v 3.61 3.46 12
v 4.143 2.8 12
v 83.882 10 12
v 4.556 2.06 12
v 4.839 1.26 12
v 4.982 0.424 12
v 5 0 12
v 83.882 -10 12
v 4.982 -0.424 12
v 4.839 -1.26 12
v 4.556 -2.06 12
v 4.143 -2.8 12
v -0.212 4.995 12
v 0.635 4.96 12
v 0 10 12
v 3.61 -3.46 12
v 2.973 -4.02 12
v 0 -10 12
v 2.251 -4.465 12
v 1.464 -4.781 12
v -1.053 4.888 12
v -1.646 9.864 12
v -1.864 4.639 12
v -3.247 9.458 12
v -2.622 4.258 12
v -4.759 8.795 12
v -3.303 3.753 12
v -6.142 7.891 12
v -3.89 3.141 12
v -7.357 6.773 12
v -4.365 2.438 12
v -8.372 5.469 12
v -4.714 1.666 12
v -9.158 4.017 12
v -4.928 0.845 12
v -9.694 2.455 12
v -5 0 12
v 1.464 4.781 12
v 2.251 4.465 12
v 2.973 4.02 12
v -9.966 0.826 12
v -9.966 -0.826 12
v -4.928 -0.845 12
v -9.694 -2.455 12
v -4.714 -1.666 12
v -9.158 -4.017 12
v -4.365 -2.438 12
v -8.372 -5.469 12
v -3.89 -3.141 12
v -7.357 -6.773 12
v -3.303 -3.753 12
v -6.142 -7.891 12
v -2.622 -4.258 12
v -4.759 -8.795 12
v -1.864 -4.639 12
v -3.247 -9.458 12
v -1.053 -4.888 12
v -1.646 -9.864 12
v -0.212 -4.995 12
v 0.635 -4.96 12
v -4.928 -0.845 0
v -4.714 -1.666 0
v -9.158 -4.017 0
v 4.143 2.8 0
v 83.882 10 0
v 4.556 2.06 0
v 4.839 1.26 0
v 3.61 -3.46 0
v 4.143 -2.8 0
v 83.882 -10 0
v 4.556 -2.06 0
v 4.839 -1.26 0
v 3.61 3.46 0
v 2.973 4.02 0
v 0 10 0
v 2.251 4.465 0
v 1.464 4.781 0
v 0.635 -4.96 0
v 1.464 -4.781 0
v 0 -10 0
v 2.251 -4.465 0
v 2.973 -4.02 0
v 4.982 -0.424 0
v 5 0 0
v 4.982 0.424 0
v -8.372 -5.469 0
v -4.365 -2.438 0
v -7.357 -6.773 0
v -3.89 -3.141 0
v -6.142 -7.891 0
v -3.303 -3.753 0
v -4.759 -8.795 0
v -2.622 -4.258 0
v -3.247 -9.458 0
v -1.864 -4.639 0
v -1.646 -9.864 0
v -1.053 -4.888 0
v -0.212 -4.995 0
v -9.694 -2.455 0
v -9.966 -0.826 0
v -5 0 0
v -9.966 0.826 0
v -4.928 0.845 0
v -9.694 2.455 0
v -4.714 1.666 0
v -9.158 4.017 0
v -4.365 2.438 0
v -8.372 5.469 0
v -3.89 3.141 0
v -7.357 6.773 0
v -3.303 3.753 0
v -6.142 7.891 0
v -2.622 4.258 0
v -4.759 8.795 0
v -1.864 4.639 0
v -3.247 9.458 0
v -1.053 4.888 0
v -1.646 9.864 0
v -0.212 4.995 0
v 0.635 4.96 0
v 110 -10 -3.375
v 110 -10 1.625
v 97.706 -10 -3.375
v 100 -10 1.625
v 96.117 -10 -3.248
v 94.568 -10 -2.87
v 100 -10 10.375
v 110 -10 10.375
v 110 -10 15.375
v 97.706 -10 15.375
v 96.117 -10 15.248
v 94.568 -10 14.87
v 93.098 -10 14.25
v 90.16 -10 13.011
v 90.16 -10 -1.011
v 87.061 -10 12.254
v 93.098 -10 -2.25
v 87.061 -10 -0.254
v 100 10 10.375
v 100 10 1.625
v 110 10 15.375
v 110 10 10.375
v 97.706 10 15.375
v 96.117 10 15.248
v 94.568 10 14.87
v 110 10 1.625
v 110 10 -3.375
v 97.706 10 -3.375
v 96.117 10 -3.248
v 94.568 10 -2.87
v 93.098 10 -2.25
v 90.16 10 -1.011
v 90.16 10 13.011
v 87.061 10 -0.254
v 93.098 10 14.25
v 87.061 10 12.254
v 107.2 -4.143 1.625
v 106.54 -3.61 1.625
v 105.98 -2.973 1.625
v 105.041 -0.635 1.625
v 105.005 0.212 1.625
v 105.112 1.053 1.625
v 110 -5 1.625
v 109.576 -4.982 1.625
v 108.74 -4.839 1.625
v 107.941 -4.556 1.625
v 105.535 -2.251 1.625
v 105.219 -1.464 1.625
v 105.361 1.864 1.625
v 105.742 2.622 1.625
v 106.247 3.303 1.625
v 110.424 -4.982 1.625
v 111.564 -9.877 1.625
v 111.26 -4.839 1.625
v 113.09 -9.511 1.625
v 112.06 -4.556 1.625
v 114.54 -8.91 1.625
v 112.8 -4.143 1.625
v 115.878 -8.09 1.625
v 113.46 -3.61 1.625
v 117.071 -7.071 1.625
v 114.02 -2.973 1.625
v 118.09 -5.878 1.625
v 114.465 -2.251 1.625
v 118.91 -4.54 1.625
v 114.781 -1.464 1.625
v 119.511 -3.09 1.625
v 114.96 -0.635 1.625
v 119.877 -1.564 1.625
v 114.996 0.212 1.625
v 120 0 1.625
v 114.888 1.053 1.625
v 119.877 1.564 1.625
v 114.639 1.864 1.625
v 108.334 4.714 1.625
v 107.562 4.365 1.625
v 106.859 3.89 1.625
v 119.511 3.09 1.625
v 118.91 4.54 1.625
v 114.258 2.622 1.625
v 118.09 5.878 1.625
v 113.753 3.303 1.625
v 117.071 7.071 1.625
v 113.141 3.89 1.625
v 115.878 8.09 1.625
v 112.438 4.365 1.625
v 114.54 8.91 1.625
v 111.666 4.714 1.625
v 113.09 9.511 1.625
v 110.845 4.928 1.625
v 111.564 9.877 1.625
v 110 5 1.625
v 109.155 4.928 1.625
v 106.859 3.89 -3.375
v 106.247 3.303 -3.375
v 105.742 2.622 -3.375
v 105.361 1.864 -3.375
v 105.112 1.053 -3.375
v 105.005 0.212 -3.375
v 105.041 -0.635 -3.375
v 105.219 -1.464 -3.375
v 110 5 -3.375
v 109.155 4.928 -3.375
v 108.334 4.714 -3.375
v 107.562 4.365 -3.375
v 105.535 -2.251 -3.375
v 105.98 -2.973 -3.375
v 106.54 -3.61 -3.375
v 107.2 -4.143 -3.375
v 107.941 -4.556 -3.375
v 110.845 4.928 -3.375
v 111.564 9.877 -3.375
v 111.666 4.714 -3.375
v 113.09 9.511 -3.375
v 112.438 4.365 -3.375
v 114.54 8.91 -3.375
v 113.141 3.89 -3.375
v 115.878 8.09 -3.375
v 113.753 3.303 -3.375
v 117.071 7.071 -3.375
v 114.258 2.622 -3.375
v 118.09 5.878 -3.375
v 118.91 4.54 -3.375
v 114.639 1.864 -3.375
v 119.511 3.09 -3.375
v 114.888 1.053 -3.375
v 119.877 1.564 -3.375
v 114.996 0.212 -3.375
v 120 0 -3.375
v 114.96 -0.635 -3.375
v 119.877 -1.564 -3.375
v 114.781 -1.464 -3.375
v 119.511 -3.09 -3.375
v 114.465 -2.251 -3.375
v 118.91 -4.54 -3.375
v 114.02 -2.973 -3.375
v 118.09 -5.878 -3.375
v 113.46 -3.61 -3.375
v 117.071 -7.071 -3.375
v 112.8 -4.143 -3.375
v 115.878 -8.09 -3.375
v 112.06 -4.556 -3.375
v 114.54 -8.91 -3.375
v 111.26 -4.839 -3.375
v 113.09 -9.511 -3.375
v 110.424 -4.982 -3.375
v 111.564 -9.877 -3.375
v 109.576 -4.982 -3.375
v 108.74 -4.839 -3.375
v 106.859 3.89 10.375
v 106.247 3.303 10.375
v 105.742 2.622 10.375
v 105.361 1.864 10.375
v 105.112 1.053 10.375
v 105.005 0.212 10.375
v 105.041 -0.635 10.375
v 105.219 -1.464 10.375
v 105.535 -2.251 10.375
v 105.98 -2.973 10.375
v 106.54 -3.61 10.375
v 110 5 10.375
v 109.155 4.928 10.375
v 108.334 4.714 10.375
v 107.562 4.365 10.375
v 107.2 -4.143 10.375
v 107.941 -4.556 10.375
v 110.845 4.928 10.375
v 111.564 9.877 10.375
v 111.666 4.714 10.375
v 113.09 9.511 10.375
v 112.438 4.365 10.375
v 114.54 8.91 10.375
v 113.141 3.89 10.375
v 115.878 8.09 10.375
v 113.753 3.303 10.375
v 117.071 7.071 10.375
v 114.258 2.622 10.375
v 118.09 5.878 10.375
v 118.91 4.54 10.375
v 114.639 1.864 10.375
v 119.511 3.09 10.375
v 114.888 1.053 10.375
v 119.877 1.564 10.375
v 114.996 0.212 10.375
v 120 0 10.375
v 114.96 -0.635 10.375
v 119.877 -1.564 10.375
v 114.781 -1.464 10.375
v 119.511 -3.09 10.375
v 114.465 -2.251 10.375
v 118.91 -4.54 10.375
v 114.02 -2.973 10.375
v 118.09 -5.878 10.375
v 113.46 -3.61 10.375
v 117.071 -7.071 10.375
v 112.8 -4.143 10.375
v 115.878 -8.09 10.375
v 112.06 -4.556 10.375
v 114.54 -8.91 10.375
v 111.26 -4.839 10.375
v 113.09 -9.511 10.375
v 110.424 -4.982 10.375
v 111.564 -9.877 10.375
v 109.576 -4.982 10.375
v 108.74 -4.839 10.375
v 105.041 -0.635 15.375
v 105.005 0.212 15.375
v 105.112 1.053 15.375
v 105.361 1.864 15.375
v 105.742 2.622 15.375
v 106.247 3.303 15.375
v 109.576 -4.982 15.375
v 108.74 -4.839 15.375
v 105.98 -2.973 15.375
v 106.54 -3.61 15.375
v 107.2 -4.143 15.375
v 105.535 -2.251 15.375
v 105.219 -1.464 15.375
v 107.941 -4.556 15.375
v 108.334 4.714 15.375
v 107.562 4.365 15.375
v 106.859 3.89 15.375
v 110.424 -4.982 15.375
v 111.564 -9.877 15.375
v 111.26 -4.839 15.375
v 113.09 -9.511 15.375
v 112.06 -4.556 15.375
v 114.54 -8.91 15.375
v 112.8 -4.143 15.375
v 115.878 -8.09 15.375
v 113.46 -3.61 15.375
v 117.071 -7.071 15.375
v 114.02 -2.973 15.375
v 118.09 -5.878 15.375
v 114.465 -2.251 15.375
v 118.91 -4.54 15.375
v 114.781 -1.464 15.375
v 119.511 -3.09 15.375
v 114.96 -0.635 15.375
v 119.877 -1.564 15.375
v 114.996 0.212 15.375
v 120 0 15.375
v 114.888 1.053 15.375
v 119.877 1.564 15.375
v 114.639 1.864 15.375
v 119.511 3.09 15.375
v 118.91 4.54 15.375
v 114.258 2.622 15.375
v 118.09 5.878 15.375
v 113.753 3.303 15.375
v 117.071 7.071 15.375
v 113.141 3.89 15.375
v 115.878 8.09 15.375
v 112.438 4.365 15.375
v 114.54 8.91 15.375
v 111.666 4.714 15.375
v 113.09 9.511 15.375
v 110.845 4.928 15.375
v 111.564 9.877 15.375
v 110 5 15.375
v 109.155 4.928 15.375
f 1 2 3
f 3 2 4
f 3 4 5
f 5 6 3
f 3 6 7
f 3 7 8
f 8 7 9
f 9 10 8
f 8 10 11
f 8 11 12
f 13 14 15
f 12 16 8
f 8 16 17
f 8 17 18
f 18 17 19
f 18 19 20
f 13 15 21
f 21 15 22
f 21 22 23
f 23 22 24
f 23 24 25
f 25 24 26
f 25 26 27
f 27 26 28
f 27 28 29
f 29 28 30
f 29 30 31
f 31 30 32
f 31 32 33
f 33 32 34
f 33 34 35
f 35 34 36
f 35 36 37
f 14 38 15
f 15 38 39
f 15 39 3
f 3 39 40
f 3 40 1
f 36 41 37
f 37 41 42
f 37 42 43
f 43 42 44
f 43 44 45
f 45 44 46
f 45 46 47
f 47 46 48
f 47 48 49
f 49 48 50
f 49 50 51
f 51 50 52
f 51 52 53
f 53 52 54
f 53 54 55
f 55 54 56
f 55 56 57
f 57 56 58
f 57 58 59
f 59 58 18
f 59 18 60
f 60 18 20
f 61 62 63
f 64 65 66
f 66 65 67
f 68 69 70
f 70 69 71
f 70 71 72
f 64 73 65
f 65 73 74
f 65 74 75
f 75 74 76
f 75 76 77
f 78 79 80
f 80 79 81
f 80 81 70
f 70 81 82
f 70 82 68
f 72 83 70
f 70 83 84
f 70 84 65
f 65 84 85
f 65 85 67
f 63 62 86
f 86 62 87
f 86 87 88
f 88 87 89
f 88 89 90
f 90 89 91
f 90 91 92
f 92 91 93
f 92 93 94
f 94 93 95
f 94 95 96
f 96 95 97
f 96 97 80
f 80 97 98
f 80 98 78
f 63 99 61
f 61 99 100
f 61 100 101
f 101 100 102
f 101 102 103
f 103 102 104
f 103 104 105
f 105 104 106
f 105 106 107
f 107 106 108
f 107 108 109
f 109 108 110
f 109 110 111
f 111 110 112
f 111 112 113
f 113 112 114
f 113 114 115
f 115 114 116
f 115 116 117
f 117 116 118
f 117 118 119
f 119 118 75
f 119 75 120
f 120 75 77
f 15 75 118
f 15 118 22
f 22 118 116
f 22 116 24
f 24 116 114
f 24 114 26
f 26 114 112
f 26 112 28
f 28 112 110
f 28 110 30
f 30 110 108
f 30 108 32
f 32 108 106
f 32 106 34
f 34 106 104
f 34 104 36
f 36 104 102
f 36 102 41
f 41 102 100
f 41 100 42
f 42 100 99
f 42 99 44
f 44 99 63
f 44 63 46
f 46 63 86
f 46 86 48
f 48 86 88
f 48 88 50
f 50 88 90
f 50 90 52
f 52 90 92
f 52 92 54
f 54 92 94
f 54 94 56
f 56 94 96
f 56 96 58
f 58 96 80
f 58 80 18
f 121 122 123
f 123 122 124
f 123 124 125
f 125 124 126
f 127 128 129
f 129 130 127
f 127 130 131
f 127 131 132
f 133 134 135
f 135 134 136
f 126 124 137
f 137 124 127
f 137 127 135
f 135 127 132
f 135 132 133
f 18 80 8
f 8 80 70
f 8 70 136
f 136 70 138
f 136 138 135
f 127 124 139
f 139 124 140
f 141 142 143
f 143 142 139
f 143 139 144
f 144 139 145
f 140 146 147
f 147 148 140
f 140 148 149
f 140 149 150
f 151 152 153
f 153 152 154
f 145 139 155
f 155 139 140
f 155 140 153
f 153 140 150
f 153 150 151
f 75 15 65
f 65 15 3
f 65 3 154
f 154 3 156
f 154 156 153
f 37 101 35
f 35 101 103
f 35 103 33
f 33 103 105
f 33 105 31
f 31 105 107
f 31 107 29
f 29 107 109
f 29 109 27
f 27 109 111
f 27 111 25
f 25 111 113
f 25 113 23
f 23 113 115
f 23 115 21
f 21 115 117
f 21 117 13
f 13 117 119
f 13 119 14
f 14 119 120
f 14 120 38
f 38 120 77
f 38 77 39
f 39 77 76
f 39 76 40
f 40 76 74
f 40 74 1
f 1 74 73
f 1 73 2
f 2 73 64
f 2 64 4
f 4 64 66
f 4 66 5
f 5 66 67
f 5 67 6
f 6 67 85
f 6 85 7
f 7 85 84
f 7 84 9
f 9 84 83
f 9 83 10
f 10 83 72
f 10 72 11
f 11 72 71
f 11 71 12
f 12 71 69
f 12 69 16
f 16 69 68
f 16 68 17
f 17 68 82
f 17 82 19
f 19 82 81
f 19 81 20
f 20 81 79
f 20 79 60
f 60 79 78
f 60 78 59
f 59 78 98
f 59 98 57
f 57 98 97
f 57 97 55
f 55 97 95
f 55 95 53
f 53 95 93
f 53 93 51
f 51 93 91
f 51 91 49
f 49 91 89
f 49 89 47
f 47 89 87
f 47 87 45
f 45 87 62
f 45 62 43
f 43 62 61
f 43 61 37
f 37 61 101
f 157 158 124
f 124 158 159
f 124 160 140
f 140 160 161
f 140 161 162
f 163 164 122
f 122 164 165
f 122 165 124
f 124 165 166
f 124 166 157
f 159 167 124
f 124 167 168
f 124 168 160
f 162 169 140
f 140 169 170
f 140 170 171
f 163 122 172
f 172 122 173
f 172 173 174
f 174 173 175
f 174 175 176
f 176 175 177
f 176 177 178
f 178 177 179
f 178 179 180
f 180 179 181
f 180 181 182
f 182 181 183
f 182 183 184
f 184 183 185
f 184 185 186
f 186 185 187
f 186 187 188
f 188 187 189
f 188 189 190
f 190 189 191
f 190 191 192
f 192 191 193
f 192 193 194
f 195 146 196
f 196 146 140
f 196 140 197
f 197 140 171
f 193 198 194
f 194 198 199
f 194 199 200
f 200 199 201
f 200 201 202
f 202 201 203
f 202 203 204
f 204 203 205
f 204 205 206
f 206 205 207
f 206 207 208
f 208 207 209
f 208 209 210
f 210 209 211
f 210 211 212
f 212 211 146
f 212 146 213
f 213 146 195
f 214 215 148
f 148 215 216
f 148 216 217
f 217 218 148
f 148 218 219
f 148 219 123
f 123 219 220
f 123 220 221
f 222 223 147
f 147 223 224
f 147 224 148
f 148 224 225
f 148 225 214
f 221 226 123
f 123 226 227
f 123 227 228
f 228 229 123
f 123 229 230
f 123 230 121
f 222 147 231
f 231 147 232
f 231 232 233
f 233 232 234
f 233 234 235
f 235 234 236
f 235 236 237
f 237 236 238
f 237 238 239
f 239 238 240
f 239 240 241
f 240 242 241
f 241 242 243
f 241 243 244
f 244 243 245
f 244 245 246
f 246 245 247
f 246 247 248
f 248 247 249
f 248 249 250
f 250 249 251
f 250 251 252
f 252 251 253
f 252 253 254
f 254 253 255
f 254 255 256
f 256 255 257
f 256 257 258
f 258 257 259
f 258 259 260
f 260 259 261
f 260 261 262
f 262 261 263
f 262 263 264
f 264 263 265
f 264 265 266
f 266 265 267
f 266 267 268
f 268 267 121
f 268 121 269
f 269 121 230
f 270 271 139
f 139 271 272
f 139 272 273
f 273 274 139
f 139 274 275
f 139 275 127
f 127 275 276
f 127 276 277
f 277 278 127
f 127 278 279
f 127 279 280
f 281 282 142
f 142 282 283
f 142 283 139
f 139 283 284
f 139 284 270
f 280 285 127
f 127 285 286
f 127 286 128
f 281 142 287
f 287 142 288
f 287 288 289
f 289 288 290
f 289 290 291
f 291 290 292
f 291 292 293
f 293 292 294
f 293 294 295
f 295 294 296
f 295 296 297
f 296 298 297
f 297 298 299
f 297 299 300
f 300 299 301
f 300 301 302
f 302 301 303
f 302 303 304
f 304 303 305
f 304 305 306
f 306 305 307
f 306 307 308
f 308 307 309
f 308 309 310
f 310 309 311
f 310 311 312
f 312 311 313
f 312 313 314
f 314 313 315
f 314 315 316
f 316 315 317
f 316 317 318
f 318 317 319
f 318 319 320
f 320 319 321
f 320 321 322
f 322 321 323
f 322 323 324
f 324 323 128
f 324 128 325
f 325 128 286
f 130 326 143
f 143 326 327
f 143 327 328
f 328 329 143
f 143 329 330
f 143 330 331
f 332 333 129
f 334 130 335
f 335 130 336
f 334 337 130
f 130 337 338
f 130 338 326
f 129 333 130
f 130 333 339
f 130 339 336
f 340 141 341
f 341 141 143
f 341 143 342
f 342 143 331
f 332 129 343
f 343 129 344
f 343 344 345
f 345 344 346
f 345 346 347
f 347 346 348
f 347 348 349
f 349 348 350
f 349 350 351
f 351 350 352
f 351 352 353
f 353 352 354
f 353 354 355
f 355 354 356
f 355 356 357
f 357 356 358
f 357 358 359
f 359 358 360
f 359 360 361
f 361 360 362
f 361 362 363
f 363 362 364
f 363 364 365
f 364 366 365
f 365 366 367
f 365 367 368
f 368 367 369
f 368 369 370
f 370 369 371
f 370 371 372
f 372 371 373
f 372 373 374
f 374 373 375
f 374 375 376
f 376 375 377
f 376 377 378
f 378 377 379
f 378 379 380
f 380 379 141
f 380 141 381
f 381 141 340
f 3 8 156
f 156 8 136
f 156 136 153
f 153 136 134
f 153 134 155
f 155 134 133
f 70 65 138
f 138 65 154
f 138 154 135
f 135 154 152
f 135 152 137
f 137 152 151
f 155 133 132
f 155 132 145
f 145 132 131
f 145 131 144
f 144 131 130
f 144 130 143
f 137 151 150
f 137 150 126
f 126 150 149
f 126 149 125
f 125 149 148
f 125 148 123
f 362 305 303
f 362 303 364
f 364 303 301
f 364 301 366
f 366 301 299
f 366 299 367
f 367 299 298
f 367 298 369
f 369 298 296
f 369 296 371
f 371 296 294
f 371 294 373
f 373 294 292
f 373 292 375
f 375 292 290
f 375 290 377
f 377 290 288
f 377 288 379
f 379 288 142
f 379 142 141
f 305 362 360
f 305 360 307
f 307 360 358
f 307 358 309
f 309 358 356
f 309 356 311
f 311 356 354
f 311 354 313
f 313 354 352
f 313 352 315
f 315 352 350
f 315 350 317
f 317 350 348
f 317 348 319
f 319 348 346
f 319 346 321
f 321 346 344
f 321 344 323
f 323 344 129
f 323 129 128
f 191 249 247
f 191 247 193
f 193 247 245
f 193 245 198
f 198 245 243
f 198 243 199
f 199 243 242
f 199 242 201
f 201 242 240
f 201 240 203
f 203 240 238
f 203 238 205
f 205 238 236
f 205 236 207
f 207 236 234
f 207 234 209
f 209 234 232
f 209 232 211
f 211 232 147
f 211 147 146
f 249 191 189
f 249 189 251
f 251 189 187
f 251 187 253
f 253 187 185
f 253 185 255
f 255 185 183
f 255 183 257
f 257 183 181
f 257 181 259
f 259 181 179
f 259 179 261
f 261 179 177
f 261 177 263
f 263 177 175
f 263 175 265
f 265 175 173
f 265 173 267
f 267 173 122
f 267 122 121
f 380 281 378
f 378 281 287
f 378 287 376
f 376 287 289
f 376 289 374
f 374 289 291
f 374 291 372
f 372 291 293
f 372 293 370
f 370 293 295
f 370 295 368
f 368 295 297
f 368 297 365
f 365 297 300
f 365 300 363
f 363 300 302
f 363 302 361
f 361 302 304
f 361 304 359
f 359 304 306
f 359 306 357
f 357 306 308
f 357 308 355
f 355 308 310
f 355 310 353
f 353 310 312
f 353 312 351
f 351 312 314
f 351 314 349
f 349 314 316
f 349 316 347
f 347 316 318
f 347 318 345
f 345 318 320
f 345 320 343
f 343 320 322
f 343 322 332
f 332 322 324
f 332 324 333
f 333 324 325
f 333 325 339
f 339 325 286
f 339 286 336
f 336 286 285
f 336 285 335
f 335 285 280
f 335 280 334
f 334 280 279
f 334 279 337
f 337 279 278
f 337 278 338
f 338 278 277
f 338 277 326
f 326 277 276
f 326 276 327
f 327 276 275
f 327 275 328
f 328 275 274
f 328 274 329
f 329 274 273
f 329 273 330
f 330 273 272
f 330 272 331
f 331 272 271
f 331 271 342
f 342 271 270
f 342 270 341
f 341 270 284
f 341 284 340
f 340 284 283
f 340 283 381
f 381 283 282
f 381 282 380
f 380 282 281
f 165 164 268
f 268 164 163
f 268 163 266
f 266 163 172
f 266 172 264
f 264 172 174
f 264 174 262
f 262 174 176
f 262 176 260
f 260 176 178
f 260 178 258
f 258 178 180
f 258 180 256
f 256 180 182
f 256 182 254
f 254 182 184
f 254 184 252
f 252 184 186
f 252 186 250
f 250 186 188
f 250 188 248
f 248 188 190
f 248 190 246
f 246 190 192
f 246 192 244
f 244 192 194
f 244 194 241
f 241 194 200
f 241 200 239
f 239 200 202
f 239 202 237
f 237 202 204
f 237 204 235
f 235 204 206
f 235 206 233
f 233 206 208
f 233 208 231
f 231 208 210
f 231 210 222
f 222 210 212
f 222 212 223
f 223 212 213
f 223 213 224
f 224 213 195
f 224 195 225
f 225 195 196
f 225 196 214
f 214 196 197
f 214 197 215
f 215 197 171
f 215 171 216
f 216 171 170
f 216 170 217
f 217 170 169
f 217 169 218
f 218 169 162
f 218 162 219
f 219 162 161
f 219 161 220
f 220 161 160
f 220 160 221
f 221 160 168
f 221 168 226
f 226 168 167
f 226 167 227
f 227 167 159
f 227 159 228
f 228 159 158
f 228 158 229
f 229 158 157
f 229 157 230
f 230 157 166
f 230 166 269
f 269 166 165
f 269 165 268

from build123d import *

# Parameters (mm, degrees)
SCHIZZO1_R                        = 5
ESTRUSIONE_ESTRUSIONE1_DEPTH      = 12
ESTRUSIONE_ESTRUSIONE2_DEPTH      = 20
ESTRUSIONE_ESTRUSIONE2_DEPTH_BACK = 5
SCHIZZO3_W                        = 5
SCHIZZO3_H                        = 20
RACCORDO1_R                       = 20
RACCORDO2_R                       = 10
RACCORDO3_R                       = 10
TAGLIO_ESTRUSIONE1_DEPTH          = 122.866986916
TAGLIO_ESTRUSIONE1_DEPTH_BACK     = 122.866986916
SCHIZZO4_R                        = 5


# Some blends are built 0.0001 mm under size
with BuildPart() as part:
    # Schizzo1 → Estrusione-Estrusione1 (new body)
    with BuildSketch(Plane.XY):
        with BuildLine():
            Line((0, 10), (100, 10))
            Line((100, 10), (100, -10))
            Line((100, -10), (0, -10))
            ThreePointArc((0, -10), (-10, 0), (0, 10))
        make_face()
        Circle(SCHIZZO1_R, mode=Mode.SUBTRACT)
    extrude(amount=ESTRUSIONE_ESTRUSIONE1_DEPTH)

    # Schizzo3 → Estrusione-Estrusione2 (add, two sides: drawn at the far end of the back side and taken through both)
    with BuildSketch(Plane(origin=(100, 0, 0), x_dir=(0, 0, -1), z_dir=(1, 0, 0)).offset(-ESTRUSIONE_ESTRUSIONE2_DEPTH_BACK)):
        with Locations((-12.875, 0)):
            Rectangle(SCHIZZO3_W, SCHIZZO3_H)
        with Locations((0.875, 0)):
            Rectangle(SCHIZZO3_W, SCHIZZO3_H)
    extrude(amount=ESTRUSIONE_ESTRUSIONE2_DEPTH + ESTRUSIONE_ESTRUSIONE2_DEPTH_BACK)

    # Raccordo1
    # the kernel refuses this fillet: 20 mm, written as the material it adds along each edge
    with BuildSketch(Plane(origin=(95, 10, 12), x_dir=(-1, 0, 0), z_dir=(0, -1, 0)), Plane(origin=(95, -10, 0), x_dir=(-1, 0, 0), z_dir=(0, 1, 0))) as raccordo1_piece_1:
        with BuildLine():
            CenterArc((11.11797531, -20), RACCORDO1_R, 90, 33.772641851)
            Line((0, -3.375), (-0.222359506, -3.0425))
            ThreePointArc((-0.222359506, -3.0425), (-0.4, -1.6875), (-0.4, 0))
            Line((-0.4, 0), (0, 0.4))
            Line((0, 0.4), (11.11797531, 0.4))
            Line((11.11797531, 0.4), (11.11797531, 0))
        make_face()
    extrude(amount=20)

    # Raccordo2
    raccordo2_edges = [part.edges().sort_by_distance(p)[0] for p in [
        (95, 0, -3.375),
        (95, 0, 15.375),
    ]]
    fillet(raccordo2_edges, radius=RACCORDO2_R)

    # Raccordo3
    raccordo3_edges = [part.edges().sort_by_distance(p)[0] for p in [
        (120, -10, 12.875),
        (120, 10, 12.875),
        (120, -10, -0.875),
        (120, 10, -0.875),
    ]]
    fillet(raccordo3_edges, radius=RACCORDO3_R - 0.0001)  # a hair under: the kernel refuses the full size

    # Schizzo4 → Taglio-Estrusione1 (cut, two sides: drawn at the far end of the back side and taken through both)
    with BuildSketch(Plane(origin=(0, 0, -3.375), x_dir=(-1, 0, 0), z_dir=(0, 0, -1)).offset(-TAGLIO_ESTRUSIONE1_DEPTH_BACK)):
        with Locations(Location((-110, 0, 0), (0, 0, 90))):
            Circle(SCHIZZO4_R)
    extrude(amount=TAGLIO_ESTRUSIONE1_DEPTH + TAGLIO_ESTRUSIONE1_DEPTH_BACK, mode=Mode.SUBTRACT)


solid = part.part
